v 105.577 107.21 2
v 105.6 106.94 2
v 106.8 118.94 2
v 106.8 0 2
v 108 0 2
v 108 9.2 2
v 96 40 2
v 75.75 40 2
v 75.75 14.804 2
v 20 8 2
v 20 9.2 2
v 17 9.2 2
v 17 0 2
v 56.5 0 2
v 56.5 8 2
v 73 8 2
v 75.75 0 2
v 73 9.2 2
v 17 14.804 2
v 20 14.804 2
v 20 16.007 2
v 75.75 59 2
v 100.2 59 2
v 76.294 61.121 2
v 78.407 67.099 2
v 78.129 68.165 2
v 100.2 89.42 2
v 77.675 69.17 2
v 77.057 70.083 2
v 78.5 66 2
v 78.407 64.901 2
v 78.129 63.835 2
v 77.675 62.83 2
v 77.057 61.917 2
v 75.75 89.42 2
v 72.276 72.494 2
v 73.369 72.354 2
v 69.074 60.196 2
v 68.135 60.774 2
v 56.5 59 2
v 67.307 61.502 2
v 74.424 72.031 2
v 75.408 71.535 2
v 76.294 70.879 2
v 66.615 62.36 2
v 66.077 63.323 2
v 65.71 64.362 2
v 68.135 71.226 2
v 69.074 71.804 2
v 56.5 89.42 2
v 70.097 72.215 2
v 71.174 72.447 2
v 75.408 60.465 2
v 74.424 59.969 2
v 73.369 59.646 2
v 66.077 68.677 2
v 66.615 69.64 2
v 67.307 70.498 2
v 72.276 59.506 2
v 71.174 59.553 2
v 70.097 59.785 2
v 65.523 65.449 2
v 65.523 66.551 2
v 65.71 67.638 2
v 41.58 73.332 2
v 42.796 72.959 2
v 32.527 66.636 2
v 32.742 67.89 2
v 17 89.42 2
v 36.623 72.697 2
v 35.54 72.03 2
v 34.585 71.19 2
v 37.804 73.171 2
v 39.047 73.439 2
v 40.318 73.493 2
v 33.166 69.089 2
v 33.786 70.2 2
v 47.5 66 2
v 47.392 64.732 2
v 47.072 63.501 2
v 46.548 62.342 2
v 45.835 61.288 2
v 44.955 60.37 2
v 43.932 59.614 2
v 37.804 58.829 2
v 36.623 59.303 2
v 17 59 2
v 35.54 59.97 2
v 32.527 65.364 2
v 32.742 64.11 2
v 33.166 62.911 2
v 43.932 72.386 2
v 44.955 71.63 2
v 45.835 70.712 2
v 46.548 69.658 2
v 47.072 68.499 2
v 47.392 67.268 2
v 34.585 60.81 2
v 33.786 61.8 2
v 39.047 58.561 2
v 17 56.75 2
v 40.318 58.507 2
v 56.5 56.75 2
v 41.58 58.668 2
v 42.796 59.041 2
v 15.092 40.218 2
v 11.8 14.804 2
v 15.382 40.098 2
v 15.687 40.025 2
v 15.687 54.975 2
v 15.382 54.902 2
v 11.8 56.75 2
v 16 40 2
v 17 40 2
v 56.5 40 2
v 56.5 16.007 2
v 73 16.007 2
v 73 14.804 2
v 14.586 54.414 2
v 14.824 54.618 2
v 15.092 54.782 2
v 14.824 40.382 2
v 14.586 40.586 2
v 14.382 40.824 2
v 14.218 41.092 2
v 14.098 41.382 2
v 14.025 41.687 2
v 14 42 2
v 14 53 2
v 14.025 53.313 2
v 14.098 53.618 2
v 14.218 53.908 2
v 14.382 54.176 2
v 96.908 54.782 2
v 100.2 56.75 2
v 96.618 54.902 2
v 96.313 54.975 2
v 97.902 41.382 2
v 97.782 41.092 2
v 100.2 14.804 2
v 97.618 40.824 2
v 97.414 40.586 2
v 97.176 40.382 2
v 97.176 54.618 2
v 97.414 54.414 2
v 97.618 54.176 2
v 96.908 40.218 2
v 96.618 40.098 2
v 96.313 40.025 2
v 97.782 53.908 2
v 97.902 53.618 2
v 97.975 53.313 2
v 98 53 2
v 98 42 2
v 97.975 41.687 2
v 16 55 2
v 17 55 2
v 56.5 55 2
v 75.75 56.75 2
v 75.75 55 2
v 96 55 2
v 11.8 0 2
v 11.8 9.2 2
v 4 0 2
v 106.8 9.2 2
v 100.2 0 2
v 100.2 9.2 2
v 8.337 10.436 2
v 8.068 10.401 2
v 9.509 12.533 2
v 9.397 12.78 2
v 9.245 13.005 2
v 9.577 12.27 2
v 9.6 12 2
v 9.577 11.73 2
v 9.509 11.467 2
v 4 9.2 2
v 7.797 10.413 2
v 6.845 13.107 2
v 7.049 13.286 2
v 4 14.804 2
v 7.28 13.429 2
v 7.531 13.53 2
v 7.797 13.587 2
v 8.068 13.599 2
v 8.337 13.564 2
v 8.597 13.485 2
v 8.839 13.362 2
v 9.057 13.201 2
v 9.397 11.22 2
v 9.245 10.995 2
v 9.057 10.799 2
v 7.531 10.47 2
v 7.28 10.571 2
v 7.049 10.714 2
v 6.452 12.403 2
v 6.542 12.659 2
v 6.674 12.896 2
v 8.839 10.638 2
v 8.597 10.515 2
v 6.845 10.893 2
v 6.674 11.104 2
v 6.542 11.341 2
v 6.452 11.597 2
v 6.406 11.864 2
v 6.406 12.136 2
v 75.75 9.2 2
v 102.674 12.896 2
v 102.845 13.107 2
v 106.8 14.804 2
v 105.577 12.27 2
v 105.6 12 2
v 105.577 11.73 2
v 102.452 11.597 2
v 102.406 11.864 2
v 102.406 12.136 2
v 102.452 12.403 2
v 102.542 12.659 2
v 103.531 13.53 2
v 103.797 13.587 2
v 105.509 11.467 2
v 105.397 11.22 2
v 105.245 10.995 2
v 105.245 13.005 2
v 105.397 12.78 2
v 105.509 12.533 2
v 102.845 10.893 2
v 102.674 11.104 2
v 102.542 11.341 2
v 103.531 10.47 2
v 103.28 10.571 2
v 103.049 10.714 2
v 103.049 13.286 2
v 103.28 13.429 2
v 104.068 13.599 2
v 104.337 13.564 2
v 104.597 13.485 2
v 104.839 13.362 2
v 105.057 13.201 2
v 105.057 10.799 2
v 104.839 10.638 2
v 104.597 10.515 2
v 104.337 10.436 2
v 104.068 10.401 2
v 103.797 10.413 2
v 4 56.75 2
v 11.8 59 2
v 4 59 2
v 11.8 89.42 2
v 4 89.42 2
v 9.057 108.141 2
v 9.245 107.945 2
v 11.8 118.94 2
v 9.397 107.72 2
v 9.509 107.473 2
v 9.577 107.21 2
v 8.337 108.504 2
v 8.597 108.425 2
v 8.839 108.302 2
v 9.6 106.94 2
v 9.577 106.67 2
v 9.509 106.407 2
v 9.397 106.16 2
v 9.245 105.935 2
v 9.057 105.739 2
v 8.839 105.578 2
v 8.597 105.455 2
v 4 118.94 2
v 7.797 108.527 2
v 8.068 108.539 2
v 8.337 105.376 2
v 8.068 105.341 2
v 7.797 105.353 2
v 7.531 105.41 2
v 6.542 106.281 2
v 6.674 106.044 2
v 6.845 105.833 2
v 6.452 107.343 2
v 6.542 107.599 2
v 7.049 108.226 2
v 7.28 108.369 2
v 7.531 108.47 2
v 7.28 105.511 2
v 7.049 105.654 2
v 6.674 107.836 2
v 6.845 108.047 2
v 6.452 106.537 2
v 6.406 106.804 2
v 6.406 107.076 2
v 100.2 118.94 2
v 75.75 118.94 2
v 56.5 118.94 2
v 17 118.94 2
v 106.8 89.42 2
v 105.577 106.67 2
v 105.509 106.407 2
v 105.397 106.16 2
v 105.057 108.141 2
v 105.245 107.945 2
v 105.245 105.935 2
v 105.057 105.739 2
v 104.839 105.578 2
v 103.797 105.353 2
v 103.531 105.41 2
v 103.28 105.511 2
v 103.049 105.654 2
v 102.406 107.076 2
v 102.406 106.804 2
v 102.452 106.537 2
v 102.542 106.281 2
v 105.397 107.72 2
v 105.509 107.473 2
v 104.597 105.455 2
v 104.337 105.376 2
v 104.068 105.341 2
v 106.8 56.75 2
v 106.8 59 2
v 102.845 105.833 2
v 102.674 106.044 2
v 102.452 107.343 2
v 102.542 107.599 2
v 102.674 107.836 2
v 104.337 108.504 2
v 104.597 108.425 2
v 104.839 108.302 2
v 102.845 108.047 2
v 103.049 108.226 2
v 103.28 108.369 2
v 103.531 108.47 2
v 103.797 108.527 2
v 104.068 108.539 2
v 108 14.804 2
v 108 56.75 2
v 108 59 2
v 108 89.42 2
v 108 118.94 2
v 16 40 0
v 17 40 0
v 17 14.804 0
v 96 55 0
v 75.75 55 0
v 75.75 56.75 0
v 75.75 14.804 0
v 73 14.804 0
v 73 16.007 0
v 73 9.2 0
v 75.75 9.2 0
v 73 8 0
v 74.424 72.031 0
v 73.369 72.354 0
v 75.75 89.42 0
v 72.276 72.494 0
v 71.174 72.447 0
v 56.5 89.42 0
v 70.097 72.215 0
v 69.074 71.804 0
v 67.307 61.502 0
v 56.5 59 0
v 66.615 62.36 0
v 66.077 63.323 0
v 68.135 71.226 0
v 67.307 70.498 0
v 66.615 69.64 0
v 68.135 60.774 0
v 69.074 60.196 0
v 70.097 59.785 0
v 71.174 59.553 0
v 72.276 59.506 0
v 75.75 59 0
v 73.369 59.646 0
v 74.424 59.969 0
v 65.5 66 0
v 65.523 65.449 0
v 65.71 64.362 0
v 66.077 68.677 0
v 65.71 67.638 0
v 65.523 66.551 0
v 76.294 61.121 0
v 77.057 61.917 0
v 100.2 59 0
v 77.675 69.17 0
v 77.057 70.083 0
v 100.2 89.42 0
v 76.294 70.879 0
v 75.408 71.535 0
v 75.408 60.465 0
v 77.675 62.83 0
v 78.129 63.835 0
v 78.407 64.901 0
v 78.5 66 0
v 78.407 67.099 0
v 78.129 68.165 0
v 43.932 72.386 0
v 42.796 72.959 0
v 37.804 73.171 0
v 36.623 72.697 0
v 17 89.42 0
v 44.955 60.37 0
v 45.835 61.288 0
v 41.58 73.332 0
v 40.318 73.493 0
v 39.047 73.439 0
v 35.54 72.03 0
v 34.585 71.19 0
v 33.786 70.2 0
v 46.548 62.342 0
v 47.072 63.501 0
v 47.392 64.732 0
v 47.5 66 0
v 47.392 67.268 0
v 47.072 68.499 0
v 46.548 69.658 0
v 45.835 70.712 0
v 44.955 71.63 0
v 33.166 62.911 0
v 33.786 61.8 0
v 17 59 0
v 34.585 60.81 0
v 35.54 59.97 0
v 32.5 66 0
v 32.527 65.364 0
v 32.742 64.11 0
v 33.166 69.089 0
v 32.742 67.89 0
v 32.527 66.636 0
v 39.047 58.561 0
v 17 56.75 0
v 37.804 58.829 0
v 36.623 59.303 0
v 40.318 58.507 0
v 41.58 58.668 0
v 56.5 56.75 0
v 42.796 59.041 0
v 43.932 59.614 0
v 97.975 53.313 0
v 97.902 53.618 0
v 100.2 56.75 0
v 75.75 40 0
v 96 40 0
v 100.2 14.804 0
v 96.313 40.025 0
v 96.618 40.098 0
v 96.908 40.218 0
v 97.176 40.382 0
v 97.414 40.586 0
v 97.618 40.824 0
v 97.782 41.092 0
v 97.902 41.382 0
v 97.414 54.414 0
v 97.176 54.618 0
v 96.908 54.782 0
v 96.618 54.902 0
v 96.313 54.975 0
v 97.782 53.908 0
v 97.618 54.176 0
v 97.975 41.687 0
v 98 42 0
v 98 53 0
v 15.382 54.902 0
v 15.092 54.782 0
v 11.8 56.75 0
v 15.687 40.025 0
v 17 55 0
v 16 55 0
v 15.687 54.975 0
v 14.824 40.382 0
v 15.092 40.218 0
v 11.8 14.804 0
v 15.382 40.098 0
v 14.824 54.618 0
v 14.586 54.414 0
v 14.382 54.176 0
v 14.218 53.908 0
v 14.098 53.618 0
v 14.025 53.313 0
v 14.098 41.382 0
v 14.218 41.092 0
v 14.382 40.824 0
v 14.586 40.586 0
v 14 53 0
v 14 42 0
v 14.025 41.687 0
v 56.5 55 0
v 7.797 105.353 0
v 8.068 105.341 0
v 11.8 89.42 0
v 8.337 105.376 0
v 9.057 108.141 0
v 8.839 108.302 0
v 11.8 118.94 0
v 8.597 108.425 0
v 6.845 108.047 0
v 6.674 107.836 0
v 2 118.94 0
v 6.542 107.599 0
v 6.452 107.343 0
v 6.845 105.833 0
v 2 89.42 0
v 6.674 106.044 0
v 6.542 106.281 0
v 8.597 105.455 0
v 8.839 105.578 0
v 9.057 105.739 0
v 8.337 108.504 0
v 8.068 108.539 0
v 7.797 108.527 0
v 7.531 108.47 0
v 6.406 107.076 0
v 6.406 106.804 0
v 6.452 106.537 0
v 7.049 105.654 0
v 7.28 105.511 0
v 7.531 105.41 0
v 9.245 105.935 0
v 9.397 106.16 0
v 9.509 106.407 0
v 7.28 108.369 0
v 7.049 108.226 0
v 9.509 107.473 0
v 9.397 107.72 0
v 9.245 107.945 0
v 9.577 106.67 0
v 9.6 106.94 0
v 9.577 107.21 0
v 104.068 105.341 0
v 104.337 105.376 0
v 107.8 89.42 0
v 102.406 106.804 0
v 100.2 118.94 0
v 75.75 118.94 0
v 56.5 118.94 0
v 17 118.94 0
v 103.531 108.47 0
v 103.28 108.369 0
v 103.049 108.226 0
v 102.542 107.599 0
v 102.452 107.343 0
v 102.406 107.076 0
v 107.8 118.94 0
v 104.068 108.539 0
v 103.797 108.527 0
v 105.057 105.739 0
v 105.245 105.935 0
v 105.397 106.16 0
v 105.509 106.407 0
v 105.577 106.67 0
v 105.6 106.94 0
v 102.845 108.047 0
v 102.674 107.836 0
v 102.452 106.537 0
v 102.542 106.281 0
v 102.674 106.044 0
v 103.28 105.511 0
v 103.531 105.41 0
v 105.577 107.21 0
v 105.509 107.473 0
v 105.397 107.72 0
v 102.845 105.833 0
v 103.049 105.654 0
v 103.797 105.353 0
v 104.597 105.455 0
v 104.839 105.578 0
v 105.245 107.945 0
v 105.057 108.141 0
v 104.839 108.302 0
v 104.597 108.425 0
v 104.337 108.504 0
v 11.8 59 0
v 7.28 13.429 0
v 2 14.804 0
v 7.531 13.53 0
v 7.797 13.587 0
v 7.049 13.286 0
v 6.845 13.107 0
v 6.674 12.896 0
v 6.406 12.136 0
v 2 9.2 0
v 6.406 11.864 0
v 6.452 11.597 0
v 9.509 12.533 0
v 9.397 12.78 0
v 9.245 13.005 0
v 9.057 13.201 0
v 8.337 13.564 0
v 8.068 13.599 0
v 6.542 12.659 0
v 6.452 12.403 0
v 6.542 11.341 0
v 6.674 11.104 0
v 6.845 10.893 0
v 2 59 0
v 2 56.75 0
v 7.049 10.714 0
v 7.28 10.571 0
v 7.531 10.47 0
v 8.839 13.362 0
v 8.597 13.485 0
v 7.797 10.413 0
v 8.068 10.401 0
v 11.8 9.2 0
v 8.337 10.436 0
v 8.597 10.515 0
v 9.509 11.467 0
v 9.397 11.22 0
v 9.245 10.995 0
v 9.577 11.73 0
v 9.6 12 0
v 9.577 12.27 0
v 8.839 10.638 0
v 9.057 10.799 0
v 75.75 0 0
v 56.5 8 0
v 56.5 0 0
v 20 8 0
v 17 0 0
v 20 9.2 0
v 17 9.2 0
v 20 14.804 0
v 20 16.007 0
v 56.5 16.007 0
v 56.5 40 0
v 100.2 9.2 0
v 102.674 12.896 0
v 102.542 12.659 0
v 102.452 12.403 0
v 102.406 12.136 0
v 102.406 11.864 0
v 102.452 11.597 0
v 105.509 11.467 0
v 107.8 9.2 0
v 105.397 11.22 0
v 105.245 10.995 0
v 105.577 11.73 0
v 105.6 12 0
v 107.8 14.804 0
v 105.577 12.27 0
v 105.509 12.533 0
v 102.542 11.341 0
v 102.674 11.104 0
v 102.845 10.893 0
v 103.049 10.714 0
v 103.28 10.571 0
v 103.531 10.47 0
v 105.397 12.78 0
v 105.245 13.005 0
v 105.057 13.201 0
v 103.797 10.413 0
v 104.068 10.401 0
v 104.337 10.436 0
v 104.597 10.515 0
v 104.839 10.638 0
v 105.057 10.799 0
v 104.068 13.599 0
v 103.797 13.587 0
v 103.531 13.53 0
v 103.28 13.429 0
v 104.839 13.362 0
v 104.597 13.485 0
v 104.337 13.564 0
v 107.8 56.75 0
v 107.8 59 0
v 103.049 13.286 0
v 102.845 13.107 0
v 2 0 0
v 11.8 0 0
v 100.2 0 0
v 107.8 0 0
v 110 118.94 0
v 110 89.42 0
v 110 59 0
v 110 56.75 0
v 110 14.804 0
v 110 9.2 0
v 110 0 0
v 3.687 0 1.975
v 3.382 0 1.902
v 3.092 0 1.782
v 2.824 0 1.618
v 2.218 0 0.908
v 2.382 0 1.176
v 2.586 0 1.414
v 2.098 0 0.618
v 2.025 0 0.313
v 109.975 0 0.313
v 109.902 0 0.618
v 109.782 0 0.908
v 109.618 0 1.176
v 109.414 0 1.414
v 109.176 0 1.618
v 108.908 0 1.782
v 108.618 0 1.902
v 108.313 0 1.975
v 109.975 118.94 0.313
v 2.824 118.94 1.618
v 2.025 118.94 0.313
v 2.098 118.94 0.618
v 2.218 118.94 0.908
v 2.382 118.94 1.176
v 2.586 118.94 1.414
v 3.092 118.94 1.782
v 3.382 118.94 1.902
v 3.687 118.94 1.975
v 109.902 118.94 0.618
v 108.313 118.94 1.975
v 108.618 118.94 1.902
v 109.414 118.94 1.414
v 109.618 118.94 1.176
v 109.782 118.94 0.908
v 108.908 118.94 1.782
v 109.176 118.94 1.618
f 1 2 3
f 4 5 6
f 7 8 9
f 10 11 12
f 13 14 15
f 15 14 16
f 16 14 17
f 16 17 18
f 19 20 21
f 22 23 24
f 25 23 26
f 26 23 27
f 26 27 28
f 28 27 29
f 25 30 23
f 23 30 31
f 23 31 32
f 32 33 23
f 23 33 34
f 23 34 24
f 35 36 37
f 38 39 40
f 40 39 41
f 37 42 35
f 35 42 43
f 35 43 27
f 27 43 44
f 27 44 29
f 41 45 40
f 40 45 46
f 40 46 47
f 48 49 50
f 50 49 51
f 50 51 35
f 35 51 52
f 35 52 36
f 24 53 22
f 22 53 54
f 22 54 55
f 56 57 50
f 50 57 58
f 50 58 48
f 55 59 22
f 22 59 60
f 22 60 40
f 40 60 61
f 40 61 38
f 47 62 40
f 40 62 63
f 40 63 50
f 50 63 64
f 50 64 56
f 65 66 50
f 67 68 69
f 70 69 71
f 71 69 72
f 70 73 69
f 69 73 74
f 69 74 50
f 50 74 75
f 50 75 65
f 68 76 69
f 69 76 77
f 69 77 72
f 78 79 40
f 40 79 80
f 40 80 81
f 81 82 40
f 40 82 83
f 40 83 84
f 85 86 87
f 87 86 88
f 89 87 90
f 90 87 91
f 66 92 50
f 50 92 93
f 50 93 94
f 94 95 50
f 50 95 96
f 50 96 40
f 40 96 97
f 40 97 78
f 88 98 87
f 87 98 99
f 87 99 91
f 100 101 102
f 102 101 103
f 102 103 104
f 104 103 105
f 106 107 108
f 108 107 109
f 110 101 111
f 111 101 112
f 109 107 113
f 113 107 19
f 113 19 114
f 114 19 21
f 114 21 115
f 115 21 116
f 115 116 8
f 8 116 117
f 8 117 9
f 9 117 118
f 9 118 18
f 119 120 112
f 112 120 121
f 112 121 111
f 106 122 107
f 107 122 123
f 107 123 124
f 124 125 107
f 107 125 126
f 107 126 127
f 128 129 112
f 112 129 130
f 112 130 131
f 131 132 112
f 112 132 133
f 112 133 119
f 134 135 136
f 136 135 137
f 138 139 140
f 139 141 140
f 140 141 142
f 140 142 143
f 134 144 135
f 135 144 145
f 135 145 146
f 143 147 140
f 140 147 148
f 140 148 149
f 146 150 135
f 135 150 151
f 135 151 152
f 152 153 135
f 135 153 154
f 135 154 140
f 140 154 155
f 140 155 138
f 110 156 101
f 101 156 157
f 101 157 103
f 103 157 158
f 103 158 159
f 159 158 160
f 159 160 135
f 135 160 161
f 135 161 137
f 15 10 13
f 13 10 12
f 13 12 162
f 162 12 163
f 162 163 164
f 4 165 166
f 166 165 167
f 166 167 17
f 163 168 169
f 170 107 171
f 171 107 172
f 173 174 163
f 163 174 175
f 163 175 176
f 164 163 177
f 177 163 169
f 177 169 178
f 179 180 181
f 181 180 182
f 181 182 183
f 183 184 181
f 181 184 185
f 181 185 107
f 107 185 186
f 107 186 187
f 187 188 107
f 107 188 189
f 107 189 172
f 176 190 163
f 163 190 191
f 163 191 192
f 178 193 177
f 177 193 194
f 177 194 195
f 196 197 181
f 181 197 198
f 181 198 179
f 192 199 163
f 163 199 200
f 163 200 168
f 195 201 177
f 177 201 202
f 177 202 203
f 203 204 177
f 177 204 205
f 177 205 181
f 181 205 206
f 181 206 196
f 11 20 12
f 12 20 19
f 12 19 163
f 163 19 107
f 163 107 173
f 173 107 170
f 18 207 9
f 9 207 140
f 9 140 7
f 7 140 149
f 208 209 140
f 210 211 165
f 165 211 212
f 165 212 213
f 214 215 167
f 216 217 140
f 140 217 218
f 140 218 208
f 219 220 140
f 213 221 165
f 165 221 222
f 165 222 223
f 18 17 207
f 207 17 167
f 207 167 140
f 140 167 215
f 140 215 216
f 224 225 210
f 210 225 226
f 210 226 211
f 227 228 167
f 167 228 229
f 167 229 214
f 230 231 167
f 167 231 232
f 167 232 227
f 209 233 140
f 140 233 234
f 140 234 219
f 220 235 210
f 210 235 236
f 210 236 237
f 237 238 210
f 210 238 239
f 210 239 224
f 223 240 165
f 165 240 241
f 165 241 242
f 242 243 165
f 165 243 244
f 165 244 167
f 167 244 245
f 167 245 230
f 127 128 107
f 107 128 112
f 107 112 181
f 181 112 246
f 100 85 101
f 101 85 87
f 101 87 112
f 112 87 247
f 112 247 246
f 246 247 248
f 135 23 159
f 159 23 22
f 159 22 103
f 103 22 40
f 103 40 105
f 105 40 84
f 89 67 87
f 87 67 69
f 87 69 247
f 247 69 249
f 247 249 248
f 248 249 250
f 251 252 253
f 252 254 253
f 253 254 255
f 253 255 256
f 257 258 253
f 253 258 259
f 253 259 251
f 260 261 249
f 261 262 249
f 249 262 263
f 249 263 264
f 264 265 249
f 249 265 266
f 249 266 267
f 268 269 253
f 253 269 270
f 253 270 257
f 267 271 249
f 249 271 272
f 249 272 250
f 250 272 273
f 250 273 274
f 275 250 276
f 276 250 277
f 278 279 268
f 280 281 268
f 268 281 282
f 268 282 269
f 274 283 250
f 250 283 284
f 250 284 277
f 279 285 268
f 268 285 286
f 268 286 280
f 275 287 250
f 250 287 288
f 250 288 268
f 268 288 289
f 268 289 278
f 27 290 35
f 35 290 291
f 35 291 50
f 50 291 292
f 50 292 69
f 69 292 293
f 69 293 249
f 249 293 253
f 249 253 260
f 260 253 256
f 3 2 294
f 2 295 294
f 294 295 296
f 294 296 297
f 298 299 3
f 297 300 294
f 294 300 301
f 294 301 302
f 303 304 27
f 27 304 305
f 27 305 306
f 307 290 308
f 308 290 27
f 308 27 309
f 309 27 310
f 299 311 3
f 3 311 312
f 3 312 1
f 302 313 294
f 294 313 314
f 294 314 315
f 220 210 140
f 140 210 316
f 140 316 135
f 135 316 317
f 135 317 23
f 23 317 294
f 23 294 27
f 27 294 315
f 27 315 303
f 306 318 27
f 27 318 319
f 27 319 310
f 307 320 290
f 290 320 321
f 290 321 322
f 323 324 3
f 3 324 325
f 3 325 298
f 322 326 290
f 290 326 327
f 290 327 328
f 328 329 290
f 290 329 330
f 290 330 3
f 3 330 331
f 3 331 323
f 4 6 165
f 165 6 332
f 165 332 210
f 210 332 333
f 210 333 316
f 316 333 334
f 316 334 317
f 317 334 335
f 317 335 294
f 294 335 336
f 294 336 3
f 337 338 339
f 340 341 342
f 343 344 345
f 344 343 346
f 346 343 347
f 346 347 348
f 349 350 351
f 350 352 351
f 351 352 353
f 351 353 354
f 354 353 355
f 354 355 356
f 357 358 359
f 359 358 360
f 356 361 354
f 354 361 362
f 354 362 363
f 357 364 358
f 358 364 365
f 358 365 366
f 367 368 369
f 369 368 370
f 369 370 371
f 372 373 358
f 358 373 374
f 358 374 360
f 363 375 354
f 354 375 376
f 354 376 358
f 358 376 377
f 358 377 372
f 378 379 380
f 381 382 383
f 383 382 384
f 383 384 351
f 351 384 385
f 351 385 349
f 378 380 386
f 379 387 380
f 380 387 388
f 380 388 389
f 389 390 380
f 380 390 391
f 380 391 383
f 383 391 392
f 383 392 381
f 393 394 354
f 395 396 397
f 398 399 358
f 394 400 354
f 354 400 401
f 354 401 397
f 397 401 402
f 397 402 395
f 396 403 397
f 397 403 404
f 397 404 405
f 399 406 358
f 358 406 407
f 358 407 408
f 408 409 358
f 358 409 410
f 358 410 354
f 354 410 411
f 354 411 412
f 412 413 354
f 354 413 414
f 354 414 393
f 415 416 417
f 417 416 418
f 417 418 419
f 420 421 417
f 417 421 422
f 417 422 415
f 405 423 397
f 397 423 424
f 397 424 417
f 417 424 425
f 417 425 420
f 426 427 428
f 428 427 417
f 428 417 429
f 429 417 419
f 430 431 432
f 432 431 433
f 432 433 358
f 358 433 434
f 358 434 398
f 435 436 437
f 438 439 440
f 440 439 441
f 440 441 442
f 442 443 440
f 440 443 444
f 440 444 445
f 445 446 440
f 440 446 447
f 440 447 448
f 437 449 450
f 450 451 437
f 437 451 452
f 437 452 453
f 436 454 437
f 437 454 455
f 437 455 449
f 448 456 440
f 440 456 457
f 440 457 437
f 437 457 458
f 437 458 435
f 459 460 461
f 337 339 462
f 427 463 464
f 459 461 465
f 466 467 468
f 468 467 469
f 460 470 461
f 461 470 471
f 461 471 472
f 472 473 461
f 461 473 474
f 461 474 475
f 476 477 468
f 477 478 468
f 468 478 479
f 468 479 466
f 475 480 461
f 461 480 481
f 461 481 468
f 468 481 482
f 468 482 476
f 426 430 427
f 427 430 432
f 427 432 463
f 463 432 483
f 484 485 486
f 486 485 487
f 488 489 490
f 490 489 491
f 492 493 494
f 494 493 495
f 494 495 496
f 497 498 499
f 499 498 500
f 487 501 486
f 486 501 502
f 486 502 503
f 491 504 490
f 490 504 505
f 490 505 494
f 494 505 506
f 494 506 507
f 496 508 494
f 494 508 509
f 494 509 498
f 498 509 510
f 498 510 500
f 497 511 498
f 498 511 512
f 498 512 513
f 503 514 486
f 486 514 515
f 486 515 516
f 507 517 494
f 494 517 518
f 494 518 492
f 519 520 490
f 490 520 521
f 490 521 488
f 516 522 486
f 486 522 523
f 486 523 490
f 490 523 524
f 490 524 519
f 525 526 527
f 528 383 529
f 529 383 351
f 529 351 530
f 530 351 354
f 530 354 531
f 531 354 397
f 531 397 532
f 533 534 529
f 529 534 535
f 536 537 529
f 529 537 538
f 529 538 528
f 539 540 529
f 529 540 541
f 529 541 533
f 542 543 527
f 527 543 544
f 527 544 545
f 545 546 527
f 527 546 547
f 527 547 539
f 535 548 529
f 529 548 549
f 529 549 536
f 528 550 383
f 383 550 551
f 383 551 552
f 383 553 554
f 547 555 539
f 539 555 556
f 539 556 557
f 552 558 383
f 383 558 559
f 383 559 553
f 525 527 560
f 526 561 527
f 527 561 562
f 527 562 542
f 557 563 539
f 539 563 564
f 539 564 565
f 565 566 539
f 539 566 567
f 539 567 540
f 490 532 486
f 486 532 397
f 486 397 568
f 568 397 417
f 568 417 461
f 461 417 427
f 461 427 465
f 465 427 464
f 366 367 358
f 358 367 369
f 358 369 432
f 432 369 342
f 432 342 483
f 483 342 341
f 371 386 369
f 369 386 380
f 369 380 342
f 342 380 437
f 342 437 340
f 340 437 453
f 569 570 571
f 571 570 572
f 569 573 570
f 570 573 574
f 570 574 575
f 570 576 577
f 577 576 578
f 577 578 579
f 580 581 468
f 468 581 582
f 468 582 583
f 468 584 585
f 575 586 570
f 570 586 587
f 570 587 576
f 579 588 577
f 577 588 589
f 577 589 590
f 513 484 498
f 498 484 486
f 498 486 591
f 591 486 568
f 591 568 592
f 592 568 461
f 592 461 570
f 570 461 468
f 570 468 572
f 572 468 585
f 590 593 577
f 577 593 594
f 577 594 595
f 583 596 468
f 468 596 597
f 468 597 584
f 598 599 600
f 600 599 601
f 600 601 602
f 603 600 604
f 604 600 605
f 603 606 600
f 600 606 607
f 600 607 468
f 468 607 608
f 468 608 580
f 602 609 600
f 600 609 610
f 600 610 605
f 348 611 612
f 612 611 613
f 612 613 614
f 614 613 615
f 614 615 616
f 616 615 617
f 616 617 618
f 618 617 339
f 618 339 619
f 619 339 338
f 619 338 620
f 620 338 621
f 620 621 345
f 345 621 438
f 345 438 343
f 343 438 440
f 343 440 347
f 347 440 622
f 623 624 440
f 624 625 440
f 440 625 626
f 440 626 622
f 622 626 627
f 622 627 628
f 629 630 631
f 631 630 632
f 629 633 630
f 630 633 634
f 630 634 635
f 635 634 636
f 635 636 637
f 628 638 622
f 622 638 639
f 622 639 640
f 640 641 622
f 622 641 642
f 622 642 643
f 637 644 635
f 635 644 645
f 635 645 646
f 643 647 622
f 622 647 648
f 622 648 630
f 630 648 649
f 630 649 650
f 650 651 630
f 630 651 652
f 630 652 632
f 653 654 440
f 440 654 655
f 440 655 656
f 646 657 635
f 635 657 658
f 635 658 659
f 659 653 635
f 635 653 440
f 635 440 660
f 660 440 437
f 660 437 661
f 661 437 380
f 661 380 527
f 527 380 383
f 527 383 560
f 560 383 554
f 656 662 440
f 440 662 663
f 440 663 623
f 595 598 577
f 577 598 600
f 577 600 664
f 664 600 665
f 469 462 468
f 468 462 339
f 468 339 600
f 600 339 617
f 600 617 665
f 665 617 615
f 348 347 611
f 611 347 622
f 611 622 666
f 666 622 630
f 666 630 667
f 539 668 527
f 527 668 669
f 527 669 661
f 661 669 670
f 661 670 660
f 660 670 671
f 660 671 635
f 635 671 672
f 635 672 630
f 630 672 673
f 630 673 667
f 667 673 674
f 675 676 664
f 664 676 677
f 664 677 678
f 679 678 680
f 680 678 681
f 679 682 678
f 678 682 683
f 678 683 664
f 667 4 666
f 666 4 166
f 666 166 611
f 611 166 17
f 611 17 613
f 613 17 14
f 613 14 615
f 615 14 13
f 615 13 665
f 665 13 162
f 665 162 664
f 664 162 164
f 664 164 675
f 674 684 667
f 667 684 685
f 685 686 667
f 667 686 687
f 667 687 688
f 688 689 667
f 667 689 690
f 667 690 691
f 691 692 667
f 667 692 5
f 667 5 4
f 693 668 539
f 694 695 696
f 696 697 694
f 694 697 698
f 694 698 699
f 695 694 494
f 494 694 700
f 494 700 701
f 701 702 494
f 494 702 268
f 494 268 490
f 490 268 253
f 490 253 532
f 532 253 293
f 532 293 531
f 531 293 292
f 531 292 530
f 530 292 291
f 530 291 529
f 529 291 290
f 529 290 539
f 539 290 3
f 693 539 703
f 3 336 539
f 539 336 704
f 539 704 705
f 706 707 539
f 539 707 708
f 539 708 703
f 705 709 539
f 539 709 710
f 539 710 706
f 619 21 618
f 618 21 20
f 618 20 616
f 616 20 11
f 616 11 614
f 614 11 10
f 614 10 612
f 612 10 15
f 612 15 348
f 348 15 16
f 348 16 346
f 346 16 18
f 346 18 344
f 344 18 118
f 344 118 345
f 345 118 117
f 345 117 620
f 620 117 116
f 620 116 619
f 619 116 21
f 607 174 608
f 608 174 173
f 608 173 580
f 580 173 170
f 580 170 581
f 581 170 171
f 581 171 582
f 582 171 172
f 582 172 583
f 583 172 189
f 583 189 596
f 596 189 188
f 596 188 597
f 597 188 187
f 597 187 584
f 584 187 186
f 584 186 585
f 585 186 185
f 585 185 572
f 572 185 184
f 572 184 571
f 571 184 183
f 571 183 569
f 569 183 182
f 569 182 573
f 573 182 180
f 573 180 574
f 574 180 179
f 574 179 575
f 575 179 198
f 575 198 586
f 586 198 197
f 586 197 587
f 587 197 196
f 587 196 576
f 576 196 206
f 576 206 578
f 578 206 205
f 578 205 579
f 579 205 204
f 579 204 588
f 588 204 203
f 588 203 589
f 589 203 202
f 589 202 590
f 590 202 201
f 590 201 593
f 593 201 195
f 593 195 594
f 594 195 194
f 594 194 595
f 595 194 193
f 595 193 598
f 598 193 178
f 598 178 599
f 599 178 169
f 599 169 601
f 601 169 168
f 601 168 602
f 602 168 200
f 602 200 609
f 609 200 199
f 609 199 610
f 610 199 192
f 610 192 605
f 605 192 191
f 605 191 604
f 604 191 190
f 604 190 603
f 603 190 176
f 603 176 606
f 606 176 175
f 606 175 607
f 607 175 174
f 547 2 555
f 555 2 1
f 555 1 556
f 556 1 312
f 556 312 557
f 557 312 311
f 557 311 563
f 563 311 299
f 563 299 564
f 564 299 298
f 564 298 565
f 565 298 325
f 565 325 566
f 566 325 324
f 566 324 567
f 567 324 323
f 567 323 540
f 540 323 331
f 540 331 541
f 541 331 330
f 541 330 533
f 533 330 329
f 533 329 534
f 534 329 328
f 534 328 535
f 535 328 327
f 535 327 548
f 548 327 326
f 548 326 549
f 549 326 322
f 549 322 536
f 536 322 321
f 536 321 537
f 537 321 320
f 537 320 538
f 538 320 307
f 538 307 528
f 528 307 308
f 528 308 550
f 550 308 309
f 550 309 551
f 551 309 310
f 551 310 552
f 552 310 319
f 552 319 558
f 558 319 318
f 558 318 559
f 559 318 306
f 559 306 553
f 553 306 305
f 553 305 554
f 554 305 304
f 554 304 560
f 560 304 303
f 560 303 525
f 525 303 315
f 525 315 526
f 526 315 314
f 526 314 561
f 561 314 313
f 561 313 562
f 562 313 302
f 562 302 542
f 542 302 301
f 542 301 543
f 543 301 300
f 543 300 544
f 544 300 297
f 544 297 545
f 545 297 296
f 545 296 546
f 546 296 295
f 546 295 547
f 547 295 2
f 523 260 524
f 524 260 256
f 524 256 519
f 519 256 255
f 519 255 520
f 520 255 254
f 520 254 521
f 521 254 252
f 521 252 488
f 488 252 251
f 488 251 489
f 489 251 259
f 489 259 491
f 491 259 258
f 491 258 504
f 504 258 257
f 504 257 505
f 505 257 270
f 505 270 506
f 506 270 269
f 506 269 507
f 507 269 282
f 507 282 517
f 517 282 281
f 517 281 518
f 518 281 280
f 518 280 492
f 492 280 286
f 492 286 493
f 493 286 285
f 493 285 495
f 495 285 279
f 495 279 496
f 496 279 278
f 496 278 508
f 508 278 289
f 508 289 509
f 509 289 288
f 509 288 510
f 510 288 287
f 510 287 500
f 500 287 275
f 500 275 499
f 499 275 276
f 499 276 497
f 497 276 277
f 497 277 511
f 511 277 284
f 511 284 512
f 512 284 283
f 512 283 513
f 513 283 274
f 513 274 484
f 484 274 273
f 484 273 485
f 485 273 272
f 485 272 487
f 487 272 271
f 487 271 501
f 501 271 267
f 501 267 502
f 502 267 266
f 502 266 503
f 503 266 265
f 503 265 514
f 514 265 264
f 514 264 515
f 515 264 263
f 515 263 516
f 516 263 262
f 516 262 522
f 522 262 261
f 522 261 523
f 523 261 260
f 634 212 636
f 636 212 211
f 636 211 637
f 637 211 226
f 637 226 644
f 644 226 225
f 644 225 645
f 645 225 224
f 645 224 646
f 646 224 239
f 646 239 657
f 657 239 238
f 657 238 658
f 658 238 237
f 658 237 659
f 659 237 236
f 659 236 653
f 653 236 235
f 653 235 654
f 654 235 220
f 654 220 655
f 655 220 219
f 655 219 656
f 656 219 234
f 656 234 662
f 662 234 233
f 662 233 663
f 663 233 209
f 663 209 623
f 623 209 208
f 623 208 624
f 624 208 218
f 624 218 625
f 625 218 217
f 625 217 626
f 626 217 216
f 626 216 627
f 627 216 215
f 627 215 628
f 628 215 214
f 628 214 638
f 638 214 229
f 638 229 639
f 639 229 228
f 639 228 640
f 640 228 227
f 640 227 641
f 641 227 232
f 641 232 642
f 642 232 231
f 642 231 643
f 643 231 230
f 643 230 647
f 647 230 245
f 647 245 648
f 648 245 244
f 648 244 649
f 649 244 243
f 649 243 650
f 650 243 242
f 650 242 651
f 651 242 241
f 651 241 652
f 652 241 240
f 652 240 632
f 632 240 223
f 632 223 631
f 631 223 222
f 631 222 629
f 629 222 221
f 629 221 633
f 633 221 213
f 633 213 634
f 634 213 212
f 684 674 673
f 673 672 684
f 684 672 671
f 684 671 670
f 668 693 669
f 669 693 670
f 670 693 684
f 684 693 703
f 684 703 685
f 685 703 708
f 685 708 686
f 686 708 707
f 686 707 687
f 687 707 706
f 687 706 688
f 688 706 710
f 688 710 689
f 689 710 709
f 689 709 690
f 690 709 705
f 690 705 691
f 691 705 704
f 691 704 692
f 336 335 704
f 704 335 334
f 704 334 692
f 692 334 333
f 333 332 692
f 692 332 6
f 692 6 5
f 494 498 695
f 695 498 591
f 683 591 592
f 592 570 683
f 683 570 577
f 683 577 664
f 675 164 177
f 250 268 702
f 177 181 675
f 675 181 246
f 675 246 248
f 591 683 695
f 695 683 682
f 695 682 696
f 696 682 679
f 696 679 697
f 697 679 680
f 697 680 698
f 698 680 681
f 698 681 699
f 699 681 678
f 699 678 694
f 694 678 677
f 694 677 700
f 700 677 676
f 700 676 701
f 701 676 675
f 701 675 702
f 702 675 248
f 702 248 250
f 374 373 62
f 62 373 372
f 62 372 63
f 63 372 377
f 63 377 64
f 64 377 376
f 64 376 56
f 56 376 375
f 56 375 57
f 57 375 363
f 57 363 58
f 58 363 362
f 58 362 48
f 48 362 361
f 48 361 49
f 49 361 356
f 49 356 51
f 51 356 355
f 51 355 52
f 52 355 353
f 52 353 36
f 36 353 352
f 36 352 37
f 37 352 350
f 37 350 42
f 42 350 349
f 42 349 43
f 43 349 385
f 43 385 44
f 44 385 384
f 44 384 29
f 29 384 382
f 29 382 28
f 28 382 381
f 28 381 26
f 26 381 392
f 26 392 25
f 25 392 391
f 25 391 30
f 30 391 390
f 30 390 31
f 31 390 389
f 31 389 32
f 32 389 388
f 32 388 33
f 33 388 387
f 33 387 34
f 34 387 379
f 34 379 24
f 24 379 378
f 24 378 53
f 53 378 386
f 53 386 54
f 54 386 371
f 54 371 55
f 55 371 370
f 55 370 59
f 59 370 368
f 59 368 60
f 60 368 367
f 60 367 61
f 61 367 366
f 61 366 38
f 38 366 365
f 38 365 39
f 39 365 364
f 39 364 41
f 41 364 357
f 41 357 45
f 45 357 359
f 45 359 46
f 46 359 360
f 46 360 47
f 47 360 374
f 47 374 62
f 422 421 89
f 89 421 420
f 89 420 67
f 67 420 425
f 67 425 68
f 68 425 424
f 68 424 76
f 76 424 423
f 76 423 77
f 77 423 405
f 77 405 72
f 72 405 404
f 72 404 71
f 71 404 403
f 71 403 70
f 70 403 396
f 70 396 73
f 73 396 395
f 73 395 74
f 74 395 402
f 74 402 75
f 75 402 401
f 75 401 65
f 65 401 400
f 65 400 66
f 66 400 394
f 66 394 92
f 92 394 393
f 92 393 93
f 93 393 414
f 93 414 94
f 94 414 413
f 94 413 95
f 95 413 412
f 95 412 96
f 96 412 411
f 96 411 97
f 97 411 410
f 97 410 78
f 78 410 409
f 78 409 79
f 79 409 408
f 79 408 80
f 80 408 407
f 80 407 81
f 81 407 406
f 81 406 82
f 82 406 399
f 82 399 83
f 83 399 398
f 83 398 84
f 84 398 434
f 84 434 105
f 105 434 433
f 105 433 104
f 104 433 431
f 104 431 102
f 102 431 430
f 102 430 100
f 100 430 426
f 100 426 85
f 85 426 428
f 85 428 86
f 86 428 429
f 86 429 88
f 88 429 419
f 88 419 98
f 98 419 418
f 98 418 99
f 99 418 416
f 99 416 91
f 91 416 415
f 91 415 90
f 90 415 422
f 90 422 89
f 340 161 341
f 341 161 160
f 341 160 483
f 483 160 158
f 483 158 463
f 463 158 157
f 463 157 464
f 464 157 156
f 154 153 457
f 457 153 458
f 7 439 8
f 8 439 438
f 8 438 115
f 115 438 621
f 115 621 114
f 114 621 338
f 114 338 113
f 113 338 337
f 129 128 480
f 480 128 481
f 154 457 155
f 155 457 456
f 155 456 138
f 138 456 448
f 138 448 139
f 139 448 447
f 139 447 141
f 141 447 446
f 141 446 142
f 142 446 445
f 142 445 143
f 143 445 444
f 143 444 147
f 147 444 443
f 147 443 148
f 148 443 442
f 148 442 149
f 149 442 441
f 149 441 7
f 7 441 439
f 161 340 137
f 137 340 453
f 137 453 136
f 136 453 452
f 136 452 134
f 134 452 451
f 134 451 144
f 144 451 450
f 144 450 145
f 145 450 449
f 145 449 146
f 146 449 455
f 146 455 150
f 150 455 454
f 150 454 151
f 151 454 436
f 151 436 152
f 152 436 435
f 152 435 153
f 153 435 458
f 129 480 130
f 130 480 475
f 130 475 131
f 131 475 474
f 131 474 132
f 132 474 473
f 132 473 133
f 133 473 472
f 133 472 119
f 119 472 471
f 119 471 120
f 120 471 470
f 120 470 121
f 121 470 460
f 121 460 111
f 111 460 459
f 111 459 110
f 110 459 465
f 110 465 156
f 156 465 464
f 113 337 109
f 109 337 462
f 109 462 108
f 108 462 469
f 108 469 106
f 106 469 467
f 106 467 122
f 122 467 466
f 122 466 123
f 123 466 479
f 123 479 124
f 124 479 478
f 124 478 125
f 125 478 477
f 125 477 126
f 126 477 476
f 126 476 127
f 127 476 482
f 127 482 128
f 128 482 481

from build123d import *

# Parameters (mm, degrees)
SZKIC1_W                    = 104
SZKIC1_H                    = 118.94
DODANIE_WYCI_GNI_CIE1_DEPTH = 2
SZKIC2_W                    = 53
SZKIC2_H                    = 1.6
SZKIC2_H_2                  = 6.407346329
WYTNIJ_WYCI_GNI_CIE2_DEPTH  = 2
SZKIC4_W                    = 2
SZKIC4_H                    = 118.94
DODANIE_WYCI_GNI_CIE2_DEPTH = 2
SZKIC5_R                    = 1.6
WYTNIJ_WYCI_GNI_CIE3_DEPTH  = 2
ZAOKR_GLENIE1_R             = 2
SZKIC6_R                    = 6.5
SZKIC6_R_2                  = 7.5
WYTNIJ_WYCI_GNI_CIE4_DEPTH  = 12
WYTNIJ_WYCI_GNI_CIE5_DEPTH  = 12
ZAOKR_GLENIE2_R             = 2


with BuildPart() as part:
    # Szkic1 → Dodanie-wyciągnięcie1 (new body)
    with BuildSketch(Plane.XY):
        with Locations((56, 59.47)):
            Rectangle(SZKIC1_W, SZKIC1_H)
    extrude(amount=DODANIE_WYCI_GNI_CIE1_DEPTH)

    # Szkic2 → Wytnij-wyciągnięcie2 (cut)
    with BuildSketch(Plane(origin=(0, 0, 0), x_dir=(-1, 0, 0), z_dir=(0, 0, -1))):
        with Locations((-46.5, 8.8)):
            Rectangle(SZKIC2_W, SZKIC2_H)
        with Locations((-46.5, 12.803673165)):
            Rectangle(SZKIC2_W, SZKIC2_H_2)
    extrude(amount=-WYTNIJ_WYCI_GNI_CIE2_DEPTH, mode=Mode.SUBTRACT)

    # Szkic4 → Dodanie-wyciągnięcie2 (add)
    with BuildSketch(Plane(origin=(0, 0, 0), x_dir=(-1, 0, 0), z_dir=(0, 0, -1))):
        with Locations((-3, 59.47)):
            Rectangle(SZKIC4_W, SZKIC4_H)
        with Locations((-109, 59.47)):
            Rectangle(SZKIC4_W, SZKIC4_H)
    extrude(amount=-DODANIE_WYCI_GNI_CIE2_DEPTH)

    # Szkic5 → Wytnij-wyciągnięcie3 (cut)
    with BuildSketch(Plane.XY.offset(2)):
        with Locations((8, 12)):
            Circle(SZKIC5_R)
        with Locations((104, 12)):
            Circle(SZKIC5_R)
        with Locations((8, 106.94)):
            Circle(SZKIC5_R)
        with Locations((104, 106.94)):
            Circle(SZKIC5_R)
    extrude(amount=-WYTNIJ_WYCI_GNI_CIE3_DEPTH, mode=Mode.SUBTRACT)

    # Zaokrąglenie1
    zaokr_glenie1_edges = [part.edges().sort_by_distance(p)[0] for p in [
        (110, 59.47, 2),
        (2, 59.47, 2),
    ]]
    fillet(zaokr_glenie1_edges, radius=ZAOKR_GLENIE1_R - 0.0001)  # a hair under: the kernel refuses the full size

    # Szkic6 → Wytnij-wyciągnięcie4 (cut)
    with BuildSketch(Plane.XY.offset(2)):
        with Locations((72, 66)):
            Circle(SZKIC6_R)
        with Locations((40, 66)):
            Circle(SZKIC6_R_2)
    extrude(amount=-WYTNIJ_WYCI_GNI_CIE4_DEPTH, mode=Mode.SUBTRACT)

    # Szkic7 → Wytnij-wyciągnięcie5 (cut)
    with BuildSketch(Plane.XY.offset(2)):
        Polygon((56, 55), (98, 55), (98, 40), (14, 40), (14, 55), align=None)
    extrude(amount=-WYTNIJ_WYCI_GNI_CIE5_DEPTH, mode=Mode.SUBTRACT)

    # Zaokrąglenie2
    zaokr_glenie2_edges = [part.edges().sort_by_distance(p)[0] for p in [
        (14, 55, 1),
        (98, 55, 1),
        (98, 40, 1),
        (14, 40, 1),
    ]]
    fillet(zaokr_glenie2_edges, radius=ZAOKR_GLENIE2_R)


solid = part.part
